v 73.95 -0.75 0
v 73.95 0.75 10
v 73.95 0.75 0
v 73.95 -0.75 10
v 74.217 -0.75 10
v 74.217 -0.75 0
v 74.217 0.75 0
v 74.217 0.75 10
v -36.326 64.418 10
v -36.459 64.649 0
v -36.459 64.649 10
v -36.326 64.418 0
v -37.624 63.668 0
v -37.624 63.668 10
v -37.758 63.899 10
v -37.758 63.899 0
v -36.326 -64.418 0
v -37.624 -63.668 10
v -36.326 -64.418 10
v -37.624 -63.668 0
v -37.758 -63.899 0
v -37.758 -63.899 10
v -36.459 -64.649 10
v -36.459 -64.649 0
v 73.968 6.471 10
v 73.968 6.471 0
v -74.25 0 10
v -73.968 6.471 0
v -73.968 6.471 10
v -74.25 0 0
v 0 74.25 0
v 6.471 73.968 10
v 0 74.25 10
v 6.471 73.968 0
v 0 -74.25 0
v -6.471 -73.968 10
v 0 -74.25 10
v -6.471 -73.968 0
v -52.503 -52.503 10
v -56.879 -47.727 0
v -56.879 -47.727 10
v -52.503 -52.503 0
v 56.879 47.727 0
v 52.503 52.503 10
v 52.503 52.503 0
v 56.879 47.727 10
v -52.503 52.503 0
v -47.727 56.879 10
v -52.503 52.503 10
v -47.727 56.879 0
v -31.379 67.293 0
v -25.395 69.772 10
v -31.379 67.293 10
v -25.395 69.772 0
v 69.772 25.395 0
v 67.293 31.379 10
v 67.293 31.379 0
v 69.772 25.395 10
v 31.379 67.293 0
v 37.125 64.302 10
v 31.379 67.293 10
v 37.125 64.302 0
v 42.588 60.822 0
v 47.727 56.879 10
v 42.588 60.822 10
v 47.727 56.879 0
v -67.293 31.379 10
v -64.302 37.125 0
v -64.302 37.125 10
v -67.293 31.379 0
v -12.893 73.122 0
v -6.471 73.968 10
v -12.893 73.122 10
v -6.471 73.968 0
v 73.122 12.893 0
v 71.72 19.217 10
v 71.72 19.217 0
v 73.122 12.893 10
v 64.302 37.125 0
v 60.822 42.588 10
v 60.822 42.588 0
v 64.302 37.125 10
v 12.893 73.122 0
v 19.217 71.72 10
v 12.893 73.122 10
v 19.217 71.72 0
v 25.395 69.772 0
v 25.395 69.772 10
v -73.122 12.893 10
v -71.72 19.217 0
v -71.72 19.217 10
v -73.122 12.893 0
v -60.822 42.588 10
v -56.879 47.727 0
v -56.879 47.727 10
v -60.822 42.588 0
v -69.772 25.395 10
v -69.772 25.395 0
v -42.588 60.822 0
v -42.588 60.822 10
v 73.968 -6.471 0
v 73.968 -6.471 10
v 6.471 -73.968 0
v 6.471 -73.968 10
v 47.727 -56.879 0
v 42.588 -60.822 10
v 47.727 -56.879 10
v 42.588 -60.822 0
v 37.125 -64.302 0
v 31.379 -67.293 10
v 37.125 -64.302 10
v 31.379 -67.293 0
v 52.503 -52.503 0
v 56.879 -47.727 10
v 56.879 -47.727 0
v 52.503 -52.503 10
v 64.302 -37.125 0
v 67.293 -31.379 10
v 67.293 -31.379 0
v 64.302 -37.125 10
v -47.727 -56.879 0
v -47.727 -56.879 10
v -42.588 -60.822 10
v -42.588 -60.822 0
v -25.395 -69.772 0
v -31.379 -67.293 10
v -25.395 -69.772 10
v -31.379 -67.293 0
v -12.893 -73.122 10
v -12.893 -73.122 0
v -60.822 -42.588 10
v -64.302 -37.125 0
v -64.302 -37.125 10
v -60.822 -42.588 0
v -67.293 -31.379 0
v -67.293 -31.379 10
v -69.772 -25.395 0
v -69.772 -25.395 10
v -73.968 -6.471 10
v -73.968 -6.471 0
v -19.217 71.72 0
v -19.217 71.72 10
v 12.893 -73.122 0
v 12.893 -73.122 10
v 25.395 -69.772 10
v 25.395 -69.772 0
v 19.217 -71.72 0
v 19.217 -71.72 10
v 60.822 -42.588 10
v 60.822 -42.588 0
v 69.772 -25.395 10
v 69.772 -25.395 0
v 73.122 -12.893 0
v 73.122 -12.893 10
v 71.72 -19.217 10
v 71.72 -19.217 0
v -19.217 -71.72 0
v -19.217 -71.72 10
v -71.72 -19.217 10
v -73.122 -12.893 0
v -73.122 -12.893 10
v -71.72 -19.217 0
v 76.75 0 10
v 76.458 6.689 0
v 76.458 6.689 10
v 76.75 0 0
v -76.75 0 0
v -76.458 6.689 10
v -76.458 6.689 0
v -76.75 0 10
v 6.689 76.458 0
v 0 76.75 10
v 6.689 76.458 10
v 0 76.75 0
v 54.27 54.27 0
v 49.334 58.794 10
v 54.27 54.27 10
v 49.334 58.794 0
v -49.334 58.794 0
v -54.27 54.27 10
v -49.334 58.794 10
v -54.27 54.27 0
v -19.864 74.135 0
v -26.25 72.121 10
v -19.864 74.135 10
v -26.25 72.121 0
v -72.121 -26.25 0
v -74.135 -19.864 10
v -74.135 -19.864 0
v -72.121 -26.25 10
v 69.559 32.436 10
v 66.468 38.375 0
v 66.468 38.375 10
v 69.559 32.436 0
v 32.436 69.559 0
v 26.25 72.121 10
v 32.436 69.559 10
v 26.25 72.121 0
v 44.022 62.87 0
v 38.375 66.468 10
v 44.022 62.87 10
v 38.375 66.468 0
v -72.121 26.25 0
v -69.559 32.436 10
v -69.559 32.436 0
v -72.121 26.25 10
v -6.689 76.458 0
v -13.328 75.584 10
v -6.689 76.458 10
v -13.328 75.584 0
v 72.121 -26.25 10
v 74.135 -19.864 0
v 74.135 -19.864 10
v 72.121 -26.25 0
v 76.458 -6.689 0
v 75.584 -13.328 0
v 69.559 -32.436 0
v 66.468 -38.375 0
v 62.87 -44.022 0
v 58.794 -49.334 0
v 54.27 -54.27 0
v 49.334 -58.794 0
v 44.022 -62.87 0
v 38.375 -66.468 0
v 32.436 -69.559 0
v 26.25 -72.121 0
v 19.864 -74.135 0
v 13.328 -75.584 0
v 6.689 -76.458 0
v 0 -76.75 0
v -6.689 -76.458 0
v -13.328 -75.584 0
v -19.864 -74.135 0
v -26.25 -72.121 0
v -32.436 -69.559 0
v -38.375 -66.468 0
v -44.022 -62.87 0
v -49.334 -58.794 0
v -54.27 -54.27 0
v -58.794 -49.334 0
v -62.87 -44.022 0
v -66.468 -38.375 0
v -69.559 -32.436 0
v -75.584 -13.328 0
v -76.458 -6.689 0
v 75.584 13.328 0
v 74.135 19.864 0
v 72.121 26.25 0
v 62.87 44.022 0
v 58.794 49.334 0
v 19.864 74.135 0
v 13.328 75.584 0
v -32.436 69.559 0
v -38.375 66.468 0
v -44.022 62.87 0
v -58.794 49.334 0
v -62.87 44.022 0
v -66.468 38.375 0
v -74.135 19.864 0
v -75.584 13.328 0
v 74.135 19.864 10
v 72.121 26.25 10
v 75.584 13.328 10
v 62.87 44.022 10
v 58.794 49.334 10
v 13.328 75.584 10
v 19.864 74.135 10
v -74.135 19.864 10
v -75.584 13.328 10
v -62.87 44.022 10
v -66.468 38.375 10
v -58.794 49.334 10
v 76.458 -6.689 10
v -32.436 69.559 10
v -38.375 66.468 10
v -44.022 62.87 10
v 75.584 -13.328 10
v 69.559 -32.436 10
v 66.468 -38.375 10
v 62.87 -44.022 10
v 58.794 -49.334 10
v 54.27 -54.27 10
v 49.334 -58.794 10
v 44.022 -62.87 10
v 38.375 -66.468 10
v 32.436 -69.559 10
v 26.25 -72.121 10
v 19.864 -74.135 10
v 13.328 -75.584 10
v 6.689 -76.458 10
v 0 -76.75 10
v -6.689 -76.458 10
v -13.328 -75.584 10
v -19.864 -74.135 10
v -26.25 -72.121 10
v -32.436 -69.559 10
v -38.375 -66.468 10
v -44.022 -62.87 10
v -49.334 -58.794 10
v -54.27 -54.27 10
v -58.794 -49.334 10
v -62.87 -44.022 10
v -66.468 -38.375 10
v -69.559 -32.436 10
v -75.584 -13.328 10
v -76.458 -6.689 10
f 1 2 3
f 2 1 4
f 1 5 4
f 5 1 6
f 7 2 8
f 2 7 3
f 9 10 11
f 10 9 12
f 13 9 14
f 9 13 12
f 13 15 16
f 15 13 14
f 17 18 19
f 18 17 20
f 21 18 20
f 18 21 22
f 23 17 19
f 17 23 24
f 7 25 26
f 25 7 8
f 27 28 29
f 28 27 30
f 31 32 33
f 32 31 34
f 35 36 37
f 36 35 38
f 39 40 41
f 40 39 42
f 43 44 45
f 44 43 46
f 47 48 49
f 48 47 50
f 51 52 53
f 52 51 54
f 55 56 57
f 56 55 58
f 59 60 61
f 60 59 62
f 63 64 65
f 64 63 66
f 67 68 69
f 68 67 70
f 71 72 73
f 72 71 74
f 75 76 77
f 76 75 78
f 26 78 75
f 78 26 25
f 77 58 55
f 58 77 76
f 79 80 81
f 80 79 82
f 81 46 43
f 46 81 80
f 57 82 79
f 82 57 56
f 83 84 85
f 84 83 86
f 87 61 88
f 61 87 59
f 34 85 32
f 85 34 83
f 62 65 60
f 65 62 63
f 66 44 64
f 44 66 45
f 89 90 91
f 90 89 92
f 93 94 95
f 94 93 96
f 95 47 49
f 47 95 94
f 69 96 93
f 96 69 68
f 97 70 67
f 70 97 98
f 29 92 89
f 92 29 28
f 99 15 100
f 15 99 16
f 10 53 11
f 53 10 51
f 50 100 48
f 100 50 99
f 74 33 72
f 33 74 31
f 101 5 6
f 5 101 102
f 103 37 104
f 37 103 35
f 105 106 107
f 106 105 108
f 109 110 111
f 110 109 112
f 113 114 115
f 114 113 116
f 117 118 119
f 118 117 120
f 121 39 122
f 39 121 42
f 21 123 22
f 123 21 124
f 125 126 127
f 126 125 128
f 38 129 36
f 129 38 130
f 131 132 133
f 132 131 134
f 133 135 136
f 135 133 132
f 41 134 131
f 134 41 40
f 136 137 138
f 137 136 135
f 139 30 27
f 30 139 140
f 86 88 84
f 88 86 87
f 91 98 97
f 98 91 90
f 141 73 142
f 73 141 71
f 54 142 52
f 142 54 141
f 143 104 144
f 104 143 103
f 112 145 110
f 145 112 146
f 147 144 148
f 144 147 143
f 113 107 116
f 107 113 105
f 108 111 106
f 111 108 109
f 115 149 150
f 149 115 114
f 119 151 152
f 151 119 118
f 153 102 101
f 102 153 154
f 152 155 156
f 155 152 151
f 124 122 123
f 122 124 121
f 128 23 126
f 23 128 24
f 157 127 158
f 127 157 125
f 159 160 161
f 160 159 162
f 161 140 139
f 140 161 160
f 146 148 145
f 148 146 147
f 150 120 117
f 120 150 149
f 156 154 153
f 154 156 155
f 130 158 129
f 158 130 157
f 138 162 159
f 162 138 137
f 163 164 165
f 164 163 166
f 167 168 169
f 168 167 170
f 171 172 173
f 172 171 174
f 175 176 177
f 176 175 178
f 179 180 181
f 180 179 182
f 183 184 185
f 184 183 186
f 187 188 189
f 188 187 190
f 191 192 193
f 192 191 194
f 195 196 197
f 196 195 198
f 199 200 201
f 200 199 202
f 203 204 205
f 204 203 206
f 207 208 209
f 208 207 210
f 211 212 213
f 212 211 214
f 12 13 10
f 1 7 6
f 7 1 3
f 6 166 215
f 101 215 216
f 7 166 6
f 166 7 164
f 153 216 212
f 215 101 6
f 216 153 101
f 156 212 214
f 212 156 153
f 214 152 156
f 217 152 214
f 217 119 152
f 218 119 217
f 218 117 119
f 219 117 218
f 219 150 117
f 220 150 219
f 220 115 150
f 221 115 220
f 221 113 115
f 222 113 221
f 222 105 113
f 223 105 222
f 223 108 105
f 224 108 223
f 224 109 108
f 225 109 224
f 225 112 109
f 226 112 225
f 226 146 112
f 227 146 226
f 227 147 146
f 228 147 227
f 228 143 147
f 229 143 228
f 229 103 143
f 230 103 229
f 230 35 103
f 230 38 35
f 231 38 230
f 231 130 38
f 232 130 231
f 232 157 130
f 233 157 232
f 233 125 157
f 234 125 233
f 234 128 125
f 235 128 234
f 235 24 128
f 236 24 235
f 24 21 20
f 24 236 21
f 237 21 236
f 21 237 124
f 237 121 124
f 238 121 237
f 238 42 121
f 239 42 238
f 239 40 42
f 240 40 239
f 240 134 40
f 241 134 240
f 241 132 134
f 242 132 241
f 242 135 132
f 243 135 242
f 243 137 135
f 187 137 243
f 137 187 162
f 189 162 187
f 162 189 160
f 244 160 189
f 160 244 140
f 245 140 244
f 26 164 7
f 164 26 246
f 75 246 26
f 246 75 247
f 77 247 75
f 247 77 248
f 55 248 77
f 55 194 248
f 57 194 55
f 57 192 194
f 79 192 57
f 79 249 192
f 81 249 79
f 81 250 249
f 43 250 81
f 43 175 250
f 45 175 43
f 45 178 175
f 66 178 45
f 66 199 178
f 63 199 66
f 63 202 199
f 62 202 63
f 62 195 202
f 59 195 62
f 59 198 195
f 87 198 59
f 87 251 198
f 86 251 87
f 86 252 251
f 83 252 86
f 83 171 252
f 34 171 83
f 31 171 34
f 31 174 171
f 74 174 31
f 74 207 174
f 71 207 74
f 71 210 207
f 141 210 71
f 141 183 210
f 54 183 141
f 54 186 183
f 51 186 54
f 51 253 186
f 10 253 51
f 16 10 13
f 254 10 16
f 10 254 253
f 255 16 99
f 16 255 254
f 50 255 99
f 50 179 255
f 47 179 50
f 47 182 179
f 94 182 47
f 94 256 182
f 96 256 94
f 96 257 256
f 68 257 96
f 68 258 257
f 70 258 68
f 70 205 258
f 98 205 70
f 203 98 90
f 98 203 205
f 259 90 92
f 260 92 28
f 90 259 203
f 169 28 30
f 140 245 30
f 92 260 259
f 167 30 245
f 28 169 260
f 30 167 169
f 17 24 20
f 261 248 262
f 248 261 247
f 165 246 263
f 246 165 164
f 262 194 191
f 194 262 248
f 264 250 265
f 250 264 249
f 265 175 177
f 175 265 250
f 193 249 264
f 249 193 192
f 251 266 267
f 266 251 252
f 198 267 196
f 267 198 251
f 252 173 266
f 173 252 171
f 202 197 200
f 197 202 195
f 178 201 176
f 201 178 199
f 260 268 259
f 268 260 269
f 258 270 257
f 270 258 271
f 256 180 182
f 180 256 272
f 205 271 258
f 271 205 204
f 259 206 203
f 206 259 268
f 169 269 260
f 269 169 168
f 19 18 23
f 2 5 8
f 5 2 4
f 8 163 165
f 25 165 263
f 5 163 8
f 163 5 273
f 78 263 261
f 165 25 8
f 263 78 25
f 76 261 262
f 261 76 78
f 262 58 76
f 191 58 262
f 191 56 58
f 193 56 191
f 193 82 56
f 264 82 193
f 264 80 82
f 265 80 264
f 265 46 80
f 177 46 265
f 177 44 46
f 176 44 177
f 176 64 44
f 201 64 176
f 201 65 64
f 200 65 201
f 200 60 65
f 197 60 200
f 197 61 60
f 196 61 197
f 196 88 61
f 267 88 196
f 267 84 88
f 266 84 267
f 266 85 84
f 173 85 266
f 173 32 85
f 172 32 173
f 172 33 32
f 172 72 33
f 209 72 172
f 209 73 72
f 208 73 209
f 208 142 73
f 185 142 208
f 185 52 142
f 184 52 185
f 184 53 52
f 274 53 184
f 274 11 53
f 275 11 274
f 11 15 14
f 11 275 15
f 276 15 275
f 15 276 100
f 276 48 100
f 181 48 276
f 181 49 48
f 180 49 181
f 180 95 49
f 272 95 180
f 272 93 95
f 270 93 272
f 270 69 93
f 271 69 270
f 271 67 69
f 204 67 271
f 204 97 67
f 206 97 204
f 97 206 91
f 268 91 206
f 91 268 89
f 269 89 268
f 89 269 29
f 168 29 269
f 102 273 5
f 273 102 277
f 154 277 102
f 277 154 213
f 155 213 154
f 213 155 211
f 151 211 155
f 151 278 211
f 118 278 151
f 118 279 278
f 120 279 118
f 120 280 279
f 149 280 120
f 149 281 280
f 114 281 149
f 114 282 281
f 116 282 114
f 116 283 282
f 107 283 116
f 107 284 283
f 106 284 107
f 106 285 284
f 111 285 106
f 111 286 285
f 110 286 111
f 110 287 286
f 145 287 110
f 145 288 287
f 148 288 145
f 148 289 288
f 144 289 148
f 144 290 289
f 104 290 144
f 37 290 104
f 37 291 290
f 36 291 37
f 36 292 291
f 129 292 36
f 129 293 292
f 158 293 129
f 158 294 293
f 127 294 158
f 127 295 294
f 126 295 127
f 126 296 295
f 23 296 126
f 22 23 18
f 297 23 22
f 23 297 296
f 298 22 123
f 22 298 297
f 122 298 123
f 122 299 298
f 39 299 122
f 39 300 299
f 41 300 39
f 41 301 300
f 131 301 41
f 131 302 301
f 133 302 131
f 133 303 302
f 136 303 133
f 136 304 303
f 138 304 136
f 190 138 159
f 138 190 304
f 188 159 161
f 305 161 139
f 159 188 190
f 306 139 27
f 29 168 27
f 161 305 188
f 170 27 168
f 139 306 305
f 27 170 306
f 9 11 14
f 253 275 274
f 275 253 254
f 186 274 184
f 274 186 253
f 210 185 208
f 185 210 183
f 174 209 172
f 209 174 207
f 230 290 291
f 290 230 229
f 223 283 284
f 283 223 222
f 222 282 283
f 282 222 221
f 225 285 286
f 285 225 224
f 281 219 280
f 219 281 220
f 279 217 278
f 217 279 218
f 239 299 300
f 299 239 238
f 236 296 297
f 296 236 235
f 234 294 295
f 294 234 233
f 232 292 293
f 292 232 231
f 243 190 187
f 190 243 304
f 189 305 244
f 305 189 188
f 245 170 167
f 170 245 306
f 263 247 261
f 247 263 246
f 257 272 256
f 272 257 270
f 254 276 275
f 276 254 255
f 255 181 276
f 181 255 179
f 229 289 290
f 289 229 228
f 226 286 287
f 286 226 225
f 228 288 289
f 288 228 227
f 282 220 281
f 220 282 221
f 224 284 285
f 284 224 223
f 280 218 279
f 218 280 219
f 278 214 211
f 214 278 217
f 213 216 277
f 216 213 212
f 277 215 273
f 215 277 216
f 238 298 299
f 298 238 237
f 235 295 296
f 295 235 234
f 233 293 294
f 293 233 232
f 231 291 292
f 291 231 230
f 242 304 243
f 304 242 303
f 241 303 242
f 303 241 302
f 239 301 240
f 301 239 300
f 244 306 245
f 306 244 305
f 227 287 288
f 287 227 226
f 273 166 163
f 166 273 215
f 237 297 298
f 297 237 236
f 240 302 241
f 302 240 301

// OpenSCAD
// P00b — Sleeve gauge G2 (bell sleeve fit). Flat on the bed. PLA. 10-minute print.
// Needs lfh_v1_reference.scad in the parent folder (LFH).
include <../lfh_v1_reference.scad>
part = "GAUGE2";
pose = "print";
